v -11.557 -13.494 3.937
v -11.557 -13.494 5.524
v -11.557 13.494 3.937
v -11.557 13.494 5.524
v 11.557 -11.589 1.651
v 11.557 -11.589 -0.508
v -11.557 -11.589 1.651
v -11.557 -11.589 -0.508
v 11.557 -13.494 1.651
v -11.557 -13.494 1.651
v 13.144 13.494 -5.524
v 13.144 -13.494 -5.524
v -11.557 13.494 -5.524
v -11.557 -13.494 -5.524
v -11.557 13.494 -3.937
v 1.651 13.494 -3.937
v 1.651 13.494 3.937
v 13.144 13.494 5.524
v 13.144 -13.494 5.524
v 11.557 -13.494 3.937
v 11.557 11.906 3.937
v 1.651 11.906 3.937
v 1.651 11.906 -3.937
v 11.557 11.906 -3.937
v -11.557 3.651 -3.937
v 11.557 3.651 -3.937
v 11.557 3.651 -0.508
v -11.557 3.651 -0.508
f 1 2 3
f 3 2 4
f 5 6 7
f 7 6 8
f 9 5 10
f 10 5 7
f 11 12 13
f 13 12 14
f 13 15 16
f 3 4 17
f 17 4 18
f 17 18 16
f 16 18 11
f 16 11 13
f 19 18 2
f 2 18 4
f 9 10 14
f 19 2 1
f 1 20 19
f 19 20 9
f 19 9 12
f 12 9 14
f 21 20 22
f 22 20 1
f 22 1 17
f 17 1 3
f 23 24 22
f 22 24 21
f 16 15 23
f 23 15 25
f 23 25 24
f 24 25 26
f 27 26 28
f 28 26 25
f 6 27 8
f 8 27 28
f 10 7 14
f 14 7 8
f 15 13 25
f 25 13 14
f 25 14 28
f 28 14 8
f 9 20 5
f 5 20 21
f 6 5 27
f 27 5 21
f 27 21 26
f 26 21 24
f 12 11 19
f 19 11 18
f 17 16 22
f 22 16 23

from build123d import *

# Parameters (mm, degrees)
BOSS_EXTRUDE3_DEPTH = 11.557
SKETCH3_W           = 11.049
SKETCH3_H           = 26.9875
BOSS_EXTRUDE4_DEPTH = 1.5875
CUT_EXTRUDE1_REACH  = 28.988
SKETCH4_W           = 13.208
SKETCH4_H           = 7.874


with BuildPart() as part:
    # Sketch1 → Boss-Extrude3 (new body, symmetric)
    with BuildSketch(Plane(origin=(0, 0, 0), x_dir=(0, 0, -1), z_dir=(1, 0, 0))):
        Polygon((-5.5245, -13.49375), (-3.937, -13.49375), (-3.937, 11.90625), (3.937, 11.90625), (3.937, 3.65125), (0.508, 3.65125), (0.508, -11.58875), (-1.651, -11.58875), (-1.651, -13.49375), (5.5245, -13.49375), (5.5245, 13.49375), (-5.5245, 13.49375), align=None)
    extrude(amount=BOSS_EXTRUDE3_DEPTH, both=True)

    # Sketch3 → Boss-Extrude4 (add)
    with BuildSketch(Plane(origin=(11.557, 0, 0), x_dir=(0, 0, -1), z_dir=(1, 0, 0))):
        Rectangle(SKETCH3_W, SKETCH3_H)
    extrude(amount=BOSS_EXTRUDE4_DEPTH)

    # Sketch4 → Cut-Extrude1 (cut, up to next)
    with BuildSketch(Plane(origin=(0, 13.49375, 0), x_dir=(1, 0, 0), z_dir=(0, 1, 0)), mode=Mode.PRIVATE) as cut_extrude1_sk1:
        with Locations((-4.953, 0)):
            Rectangle(SKETCH4_W, SKETCH4_H)
    cut_extrude1_tool1 = extrude(cut_extrude1_sk1.sketch, amount=-CUT_EXTRUDE1_REACH, mode=Mode.PRIVATE) & part.part
    add(cut_extrude1_tool1.solids().sort_by_distance((-4.953, 13.49375, 0))[0], mode=Mode.SUBTRACT)


solid = part.part
